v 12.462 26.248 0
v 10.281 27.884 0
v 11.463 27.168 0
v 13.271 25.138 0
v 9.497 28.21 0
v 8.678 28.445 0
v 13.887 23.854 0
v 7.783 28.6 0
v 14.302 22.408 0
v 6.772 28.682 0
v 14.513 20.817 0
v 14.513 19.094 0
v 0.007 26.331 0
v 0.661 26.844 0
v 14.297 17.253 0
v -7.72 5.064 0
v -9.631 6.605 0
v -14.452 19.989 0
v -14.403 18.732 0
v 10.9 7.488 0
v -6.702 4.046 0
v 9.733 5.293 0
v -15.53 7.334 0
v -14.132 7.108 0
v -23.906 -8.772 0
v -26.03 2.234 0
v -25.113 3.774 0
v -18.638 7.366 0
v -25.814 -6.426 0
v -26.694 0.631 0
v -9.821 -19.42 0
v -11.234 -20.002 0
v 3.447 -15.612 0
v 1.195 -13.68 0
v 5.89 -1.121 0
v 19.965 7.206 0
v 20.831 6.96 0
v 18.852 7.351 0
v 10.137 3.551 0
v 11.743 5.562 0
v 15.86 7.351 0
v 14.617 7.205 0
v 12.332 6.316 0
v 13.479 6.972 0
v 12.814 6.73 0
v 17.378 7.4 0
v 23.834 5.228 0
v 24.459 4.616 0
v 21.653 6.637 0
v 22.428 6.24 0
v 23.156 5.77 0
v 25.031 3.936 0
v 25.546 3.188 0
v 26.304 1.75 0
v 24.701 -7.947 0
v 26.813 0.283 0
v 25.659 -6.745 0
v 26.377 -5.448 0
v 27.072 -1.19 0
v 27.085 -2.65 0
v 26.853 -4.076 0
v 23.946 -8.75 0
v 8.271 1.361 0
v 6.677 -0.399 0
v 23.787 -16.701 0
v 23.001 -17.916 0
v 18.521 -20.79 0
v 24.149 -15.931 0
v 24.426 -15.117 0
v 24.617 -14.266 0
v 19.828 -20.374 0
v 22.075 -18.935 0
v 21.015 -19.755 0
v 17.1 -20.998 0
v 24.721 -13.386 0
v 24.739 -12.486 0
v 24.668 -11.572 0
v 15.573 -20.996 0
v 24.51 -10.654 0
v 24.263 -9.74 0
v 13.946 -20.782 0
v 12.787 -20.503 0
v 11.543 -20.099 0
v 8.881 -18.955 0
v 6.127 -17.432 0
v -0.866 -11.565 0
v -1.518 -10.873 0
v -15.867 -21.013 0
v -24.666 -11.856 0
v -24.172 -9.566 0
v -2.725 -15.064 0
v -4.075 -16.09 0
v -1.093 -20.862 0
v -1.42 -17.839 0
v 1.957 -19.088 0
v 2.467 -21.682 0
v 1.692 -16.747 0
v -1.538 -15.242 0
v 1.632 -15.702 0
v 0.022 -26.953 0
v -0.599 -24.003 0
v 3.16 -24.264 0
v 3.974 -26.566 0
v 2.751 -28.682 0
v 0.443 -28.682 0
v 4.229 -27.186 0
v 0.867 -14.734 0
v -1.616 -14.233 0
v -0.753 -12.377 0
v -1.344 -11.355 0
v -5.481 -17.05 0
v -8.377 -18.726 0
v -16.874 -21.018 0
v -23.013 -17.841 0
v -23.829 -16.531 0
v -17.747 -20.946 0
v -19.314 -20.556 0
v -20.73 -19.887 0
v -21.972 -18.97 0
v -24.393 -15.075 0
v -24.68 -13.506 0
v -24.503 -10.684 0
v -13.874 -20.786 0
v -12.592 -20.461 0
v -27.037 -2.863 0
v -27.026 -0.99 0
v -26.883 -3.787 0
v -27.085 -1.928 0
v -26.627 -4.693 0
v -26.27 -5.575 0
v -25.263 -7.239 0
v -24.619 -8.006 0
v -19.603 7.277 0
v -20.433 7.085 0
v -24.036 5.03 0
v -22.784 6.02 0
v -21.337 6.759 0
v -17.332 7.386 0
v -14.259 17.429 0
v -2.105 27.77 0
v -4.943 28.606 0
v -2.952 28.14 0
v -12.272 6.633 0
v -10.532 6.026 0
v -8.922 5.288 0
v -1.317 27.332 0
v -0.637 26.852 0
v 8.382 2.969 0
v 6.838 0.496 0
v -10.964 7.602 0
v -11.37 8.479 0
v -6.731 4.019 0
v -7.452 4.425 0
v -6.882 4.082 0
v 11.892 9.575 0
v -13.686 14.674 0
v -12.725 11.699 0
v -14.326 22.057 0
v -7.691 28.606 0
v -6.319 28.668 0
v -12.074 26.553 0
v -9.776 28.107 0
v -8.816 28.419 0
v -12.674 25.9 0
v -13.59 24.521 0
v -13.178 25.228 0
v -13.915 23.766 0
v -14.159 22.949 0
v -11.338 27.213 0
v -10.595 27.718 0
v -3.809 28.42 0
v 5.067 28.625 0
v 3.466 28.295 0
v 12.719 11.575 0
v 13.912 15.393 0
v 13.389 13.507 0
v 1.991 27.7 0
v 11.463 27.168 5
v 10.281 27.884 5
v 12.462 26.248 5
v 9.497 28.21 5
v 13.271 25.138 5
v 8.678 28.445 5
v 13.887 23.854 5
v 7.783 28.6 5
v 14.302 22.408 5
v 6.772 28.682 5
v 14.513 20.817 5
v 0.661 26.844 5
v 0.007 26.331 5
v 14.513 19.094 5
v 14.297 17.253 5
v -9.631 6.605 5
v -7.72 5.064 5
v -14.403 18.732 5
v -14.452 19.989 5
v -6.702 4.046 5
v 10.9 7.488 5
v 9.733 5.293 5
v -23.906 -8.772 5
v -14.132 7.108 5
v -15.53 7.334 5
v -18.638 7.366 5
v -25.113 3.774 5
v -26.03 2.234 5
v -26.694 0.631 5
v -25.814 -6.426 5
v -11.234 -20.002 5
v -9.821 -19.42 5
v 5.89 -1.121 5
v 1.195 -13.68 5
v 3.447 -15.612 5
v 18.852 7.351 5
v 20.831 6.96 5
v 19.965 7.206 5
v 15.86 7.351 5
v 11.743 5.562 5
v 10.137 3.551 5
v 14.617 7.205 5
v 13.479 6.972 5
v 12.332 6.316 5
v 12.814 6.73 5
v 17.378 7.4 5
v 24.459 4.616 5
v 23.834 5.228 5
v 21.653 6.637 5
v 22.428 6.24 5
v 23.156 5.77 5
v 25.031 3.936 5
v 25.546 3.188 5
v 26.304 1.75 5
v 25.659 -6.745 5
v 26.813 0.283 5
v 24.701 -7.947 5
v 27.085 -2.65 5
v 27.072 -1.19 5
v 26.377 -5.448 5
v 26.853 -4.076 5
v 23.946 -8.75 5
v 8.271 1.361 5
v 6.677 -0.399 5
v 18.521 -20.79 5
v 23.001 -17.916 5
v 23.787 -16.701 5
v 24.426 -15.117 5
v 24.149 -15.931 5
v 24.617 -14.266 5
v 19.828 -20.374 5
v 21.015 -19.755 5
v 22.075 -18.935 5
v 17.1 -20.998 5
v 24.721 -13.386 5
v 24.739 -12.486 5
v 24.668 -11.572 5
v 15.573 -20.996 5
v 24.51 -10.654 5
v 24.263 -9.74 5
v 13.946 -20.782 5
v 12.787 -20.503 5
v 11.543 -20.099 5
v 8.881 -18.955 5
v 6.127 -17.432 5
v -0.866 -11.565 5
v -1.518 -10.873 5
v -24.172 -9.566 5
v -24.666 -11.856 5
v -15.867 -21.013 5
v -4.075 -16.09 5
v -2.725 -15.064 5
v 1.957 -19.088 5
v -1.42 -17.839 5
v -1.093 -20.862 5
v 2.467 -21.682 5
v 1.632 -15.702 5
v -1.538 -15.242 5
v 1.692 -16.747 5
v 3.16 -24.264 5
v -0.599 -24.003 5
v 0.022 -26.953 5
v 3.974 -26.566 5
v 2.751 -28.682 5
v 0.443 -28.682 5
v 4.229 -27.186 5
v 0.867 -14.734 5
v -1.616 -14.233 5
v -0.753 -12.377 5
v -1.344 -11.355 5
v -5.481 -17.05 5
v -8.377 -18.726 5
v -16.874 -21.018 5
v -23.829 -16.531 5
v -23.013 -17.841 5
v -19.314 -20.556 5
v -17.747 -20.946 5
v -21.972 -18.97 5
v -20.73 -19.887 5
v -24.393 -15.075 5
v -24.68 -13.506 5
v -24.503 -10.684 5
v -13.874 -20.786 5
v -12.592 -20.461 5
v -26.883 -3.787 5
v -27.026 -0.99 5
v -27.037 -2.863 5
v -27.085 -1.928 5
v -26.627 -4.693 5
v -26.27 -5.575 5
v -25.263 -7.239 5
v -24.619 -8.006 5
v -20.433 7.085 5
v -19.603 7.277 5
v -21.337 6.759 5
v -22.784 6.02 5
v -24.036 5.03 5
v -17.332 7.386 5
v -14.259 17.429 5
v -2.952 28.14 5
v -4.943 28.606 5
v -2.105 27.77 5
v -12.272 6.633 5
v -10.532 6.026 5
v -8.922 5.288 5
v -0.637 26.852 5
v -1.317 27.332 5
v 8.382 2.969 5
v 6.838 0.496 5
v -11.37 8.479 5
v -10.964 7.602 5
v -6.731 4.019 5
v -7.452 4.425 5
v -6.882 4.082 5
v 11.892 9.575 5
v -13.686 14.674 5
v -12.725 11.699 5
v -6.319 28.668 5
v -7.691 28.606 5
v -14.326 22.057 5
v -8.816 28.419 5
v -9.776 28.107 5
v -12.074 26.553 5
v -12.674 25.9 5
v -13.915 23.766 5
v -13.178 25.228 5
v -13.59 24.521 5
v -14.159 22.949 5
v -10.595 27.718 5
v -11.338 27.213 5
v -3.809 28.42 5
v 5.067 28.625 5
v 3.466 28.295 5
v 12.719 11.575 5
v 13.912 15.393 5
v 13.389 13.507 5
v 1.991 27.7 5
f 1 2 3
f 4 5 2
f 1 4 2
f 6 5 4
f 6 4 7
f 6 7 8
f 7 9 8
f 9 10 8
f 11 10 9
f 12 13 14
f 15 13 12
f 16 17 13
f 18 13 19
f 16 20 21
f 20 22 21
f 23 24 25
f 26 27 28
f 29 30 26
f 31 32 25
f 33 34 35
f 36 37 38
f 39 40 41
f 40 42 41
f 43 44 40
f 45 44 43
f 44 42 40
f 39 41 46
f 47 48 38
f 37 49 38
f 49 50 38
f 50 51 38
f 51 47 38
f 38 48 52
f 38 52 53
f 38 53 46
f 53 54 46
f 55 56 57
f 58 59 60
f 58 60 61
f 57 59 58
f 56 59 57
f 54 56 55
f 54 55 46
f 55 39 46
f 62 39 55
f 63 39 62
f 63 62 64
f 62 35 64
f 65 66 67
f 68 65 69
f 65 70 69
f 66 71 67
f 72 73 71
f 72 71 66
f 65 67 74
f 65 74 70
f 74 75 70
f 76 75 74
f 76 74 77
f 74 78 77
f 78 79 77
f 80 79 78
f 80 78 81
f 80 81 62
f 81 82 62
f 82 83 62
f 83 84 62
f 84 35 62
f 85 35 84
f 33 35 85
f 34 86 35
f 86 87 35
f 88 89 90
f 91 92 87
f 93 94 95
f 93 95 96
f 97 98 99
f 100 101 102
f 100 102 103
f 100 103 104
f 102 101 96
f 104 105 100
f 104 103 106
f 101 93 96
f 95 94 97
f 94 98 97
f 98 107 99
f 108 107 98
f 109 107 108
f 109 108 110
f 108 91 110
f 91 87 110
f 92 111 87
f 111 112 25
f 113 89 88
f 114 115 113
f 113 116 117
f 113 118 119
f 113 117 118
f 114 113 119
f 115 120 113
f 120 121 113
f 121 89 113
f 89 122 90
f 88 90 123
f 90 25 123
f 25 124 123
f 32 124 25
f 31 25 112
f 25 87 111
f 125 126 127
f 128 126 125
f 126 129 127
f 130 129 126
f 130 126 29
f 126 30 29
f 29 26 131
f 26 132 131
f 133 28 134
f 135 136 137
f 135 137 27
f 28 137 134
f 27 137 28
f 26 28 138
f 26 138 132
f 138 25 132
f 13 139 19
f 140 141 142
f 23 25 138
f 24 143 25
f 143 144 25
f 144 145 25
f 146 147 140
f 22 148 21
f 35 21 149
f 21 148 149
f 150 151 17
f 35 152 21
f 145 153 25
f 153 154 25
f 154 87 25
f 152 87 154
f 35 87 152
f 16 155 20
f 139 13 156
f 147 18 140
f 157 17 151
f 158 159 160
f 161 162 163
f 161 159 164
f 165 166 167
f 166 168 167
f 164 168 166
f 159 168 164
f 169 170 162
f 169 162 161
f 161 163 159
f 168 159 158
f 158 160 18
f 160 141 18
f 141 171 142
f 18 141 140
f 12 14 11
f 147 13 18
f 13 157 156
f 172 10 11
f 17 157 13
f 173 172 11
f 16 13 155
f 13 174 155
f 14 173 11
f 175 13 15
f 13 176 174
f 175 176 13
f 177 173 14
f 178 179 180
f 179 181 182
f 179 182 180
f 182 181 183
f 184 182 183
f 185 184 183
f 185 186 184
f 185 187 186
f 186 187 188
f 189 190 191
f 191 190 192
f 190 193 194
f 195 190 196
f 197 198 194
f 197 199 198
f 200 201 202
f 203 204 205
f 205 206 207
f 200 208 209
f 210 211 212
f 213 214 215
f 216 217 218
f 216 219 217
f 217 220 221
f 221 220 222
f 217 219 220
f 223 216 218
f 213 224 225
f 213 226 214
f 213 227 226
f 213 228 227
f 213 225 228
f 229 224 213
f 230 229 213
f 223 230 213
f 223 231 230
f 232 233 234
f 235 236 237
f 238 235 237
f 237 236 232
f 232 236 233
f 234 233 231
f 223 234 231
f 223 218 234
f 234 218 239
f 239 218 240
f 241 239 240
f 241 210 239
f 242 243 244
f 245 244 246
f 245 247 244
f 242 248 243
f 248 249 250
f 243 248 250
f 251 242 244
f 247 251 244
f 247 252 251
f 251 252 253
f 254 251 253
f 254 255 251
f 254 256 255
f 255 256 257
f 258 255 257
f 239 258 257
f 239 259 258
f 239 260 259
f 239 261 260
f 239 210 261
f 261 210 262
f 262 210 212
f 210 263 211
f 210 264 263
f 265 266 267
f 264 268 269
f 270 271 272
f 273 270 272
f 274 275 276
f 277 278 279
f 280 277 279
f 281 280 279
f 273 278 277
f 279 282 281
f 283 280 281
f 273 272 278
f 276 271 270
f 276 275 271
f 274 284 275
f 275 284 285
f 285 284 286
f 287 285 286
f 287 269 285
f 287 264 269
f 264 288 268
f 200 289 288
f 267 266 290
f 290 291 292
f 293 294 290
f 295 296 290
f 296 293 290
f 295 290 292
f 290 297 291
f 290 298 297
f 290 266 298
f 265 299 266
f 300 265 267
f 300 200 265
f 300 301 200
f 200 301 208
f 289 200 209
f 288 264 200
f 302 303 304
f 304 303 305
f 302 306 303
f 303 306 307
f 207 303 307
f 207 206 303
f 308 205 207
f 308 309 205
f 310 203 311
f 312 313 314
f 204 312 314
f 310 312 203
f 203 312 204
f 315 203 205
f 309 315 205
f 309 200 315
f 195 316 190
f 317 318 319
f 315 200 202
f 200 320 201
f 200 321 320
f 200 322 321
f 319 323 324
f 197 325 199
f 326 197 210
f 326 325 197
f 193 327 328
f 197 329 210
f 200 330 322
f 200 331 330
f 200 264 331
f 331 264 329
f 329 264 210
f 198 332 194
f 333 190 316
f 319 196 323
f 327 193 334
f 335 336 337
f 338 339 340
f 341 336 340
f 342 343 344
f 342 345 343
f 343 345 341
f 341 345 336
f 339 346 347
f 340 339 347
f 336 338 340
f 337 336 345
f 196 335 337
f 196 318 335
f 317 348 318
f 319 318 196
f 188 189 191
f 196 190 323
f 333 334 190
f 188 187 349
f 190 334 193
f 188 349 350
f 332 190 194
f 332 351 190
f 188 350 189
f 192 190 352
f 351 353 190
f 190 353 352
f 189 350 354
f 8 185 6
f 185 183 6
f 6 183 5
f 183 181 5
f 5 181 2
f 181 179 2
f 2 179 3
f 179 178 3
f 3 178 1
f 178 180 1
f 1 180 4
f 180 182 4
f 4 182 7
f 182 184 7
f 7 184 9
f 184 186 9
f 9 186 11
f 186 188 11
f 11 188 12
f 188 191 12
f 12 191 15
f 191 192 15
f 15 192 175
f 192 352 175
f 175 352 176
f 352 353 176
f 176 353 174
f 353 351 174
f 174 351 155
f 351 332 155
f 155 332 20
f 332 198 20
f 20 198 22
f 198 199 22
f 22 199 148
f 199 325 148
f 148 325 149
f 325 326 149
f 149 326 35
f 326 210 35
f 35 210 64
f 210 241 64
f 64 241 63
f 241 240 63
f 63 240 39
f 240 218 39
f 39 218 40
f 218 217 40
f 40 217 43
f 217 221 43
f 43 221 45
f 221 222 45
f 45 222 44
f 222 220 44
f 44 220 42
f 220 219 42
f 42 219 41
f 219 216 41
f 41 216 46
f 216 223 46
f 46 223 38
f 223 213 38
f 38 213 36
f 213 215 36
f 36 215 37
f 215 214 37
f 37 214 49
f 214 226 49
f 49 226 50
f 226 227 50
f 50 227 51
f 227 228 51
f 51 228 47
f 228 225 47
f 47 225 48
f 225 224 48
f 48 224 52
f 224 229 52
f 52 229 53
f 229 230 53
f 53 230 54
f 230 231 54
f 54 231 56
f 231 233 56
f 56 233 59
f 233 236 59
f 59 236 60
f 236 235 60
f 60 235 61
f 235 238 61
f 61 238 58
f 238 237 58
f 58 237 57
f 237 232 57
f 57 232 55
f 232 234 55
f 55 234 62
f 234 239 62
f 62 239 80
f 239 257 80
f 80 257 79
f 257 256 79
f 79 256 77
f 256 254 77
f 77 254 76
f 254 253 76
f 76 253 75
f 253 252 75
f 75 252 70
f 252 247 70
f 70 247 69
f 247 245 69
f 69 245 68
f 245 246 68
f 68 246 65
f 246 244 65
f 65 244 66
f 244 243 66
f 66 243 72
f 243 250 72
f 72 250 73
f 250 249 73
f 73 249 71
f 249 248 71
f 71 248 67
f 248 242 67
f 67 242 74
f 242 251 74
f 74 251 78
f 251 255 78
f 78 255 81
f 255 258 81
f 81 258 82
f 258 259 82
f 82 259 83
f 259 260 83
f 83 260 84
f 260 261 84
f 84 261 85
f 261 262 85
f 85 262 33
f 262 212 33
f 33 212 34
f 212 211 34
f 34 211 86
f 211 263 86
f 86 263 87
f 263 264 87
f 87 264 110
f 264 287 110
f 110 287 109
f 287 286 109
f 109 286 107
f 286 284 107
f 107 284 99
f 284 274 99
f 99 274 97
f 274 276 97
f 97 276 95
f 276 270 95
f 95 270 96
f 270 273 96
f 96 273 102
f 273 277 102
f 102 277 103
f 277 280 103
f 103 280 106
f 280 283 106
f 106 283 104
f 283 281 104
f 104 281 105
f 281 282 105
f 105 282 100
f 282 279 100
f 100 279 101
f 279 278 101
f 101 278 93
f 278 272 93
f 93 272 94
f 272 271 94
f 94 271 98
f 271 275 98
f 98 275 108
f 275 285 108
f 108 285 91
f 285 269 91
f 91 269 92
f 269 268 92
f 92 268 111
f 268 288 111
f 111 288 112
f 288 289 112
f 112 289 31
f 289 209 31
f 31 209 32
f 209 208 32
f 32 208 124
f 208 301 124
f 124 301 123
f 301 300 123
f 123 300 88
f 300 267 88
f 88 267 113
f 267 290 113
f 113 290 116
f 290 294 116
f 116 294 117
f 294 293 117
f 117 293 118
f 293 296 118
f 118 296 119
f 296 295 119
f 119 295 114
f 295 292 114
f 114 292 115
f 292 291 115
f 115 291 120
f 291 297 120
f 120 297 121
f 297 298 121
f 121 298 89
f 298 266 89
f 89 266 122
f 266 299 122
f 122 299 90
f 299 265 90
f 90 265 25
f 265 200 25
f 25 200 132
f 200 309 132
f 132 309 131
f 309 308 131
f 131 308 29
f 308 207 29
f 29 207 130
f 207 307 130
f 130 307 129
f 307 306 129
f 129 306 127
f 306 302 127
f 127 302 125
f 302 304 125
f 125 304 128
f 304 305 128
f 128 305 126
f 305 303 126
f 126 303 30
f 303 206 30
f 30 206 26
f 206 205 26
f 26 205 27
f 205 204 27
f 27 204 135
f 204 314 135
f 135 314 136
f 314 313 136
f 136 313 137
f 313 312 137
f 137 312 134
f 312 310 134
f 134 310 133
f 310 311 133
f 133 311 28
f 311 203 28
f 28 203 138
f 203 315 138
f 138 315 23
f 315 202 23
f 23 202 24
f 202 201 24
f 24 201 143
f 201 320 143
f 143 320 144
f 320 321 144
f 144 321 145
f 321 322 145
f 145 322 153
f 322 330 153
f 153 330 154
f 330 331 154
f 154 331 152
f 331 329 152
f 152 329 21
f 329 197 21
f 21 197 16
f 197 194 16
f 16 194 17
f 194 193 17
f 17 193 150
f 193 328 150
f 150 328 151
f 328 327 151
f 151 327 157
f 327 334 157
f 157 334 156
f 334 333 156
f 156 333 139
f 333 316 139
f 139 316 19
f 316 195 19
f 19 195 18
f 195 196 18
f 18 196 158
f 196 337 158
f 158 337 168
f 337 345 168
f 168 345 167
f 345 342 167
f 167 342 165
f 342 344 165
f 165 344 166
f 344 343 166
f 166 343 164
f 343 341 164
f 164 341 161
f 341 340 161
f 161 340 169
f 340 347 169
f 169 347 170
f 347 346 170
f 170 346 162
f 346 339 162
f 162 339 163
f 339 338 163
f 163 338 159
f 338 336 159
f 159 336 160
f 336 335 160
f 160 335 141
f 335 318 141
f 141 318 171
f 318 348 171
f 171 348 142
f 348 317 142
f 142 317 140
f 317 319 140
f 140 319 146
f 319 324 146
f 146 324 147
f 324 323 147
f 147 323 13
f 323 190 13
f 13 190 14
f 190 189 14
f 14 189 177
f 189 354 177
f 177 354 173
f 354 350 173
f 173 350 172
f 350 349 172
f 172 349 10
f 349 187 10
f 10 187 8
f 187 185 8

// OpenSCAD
// Module names are of the form poly_<inkscape-path-id>().
// As a result you can associate a polygon in this OpenSCAD program with the
//  corresponding SVG element in the Inkscape document by looking for 
//  the XML element with the attribute id="inkscape-path-id".

// Paths have their own variables so they can be imported and used 
//  in polygon(points) structures in other programs.
// The NN_points is the list of all polygon XY vertices. 
// There may be an NN_paths variable as well. If it exists then it 
//  defines the nested paths. Both must be used in the 
//  polygon(points, paths) variant of the command.

profile_scale = 25.4/90; //made in inkscape in mm

// helper functions to determine the X,Y dimensions of the profiles
function min_x(shape_points) = min([ for (x = shape_points) min(x[0])]);
function max_x(shape_points) = max([ for (x = shape_points) max(x[0])]);
function min_y(shape_points) = min([ for (x = shape_points) min(x[1])]);
function max_y(shape_points) = max([ for (x = shape_points) max(x[1])]);

height = 5;
width = 1.0;


path3748_0_points = [[0.077872,95.503570],[-2.122076,85.049308],[-3.873795,73.919759],[-5.031635,63.208250],[-5.449948,54.008110],[-5.724268,50.431320],[-9.656184,53.377010],[-14.437322,57.011760],[-19.421141,60.413117],[-29.680960,66.353541],[-34.799027,68.811553],[-39.803911,70.874061],[-44.616645,72.500536],[-49.158263,73.650450],[-56.220931,74.455018],[-59.790633,74.474729],[-62.884265,74.218630],[-68.434658,72.837341],[-73.454553,70.464186],[-77.854039,67.217291],[-81.543207,63.214781],[-84.432147,58.574784],[-86.430948,53.415424],[-87.449700,47.854828],[-87.398494,42.011120],[-86.823148,37.857356],[-85.650612,33.894190],[-84.708009,31.080750],[-87.232812,28.366280],[-89.515706,25.648534],[-91.467909,22.770045],[-93.080933,19.755555],[-94.346291,16.629805],[-95.255495,13.417535],[-95.800054,10.143485],[-95.971483,6.832397],[-95.761291,3.509010],[-94.583483,-2.234581],[-92.233186,-7.915150],[-88.983095,-13.371513],[-85.168486,-17.824042],[-80.728933,-21.331010],[-75.604009,-23.950688],[-72.400324,-25.106059],[-69.458433,-25.784388],[-66.041134,-26.101019],[-61.411223,-26.171298],[-55.026728,-25.987217],[-50.072660,-25.184653],[-43.482440,-23.504344],[-37.318628,-21.350890],[-31.615068,-18.737875],[-26.405606,-15.678882],[-24.386596,-14.464297],[-23.851197,-14.241871],[-23.748002,-14.334757],[-27.354107,-17.943350],[-34.127160,-23.405029],[-38.847101,-26.934642],[-40.288737,-30.043616],[-45.089037,-41.454261],[-48.493116,-51.995923],[-50.524642,-61.756987],[-51.033094,-66.372417],[-51.207282,-70.825842],[-50.763032,-78.153720],[-50.169859,-81.316552],[-49.305603,-84.210791],[-48.152475,-86.885547],[-46.692688,-89.389927],[-44.908451,-91.773041],[-42.781977,-94.083997],[-40.175272,-96.422590],[-37.540768,-98.213421],[-34.640380,-99.592869],[-31.236023,-100.697313],[-27.253236,-101.358691],[-22.390205,-101.579499],[-17.515244,-101.359665],[-13.496664,-100.699113],[-10.458586,-99.708958],[-7.457506,-98.396132],[-4.665861,-96.845862],[-2.256088,-95.143377],[0.023362,-93.297570],[2.340462,-95.118450],[7.053441,-98.147797],[12.282505,-100.257636],[17.953865,-101.425777],[23.993732,-101.630030],[27.577879,-101.337403],[30.747863,-100.790524],[33.649746,-99.956161],[36.429592,-98.801078],[40.617536,-96.263010],[44.155599,-93.002901],[47.024530,-89.071714],[49.205077,-84.520412],[50.677989,-79.399956],[51.424016,-73.761311],[51.423907,-67.655439],[50.658412,-61.133302],[49.294627,-54.542032],[47.441512,-47.859419],[45.066578,-41.012479],[42.137335,-33.928226],[38.621294,-26.533676],[34.485964,-18.755845],[29.698857,-10.521748],[24.227482,-1.758400],[20.868462,3.972080],[23.659278,1.413635],[29.305383,-4.823834],[35.917872,-12.583528],[41.607842,-19.708650],[43.694423,-22.378479],[45.402837,-23.847528],[47.759671,-24.702719],[51.791512,-25.530973],[56.198358,-26.046945],[61.575432,-26.219391],[66.798103,-26.048179],[70.741742,-25.533173],[73.809744,-24.659685],[76.721652,-23.517074],[79.470395,-22.110430],[82.048902,-20.444844],[84.450101,-18.525406],[86.666921,-16.357207],[88.692292,-13.945336],[90.519142,-11.294884],[93.204853,-6.199010],[95.005130,-1.004507],[95.925498,4.215877],[95.971483,9.389391],[95.148610,14.443286],[93.462405,19.304812],[90.918393,23.901220],[87.522102,28.159760],[84.847892,31.005290],[85.970702,34.510540],[86.846450,37.752052],[87.407889,41.004717],[87.656947,44.240345],[87.595553,47.430741],[87.225633,50.547715],[86.549116,53.563075],[85.567930,56.448627],[84.284002,59.176180],[81.500497,63.480330],[78.218854,67.091123],[74.463109,69.998590],[70.257297,72.192764],[65.625452,73.663677],[60.591611,74.401361],[55.179809,74.395848],[49.414082,73.637170],[45.309328,72.649029],[40.901110,71.216193],[31.469694,67.161921],[21.710667,61.765317],[12.214862,55.317340],[4.233233,48.472864],[-3.069548,40.978580],[-5.380138,38.527580],[-4.762967,40.233446],[-2.669768,43.856439],[3.073392,52.207340],[5.783672,55.636990],[5.996212,59.339660],[6.935081,67.634341],[8.741514,76.826501],[11.196431,85.973311],[14.080752,94.131940],[14.984232,96.326500],[12.365882,98.978250],[9.747532,101.630030],[5.658952,101.630030],[1.570352,101.630030],[0.078002,95.503540],[0.077872,95.503570]];

module poly_path3748(h, w, res=4)  {
  scale([profile_scale, -profile_scale, 1])
  union()  {
    linear_extrude(height=h)
      polygon(path3748_0_points);
  }
}

// The shapes
poly_path3748(height, width);
